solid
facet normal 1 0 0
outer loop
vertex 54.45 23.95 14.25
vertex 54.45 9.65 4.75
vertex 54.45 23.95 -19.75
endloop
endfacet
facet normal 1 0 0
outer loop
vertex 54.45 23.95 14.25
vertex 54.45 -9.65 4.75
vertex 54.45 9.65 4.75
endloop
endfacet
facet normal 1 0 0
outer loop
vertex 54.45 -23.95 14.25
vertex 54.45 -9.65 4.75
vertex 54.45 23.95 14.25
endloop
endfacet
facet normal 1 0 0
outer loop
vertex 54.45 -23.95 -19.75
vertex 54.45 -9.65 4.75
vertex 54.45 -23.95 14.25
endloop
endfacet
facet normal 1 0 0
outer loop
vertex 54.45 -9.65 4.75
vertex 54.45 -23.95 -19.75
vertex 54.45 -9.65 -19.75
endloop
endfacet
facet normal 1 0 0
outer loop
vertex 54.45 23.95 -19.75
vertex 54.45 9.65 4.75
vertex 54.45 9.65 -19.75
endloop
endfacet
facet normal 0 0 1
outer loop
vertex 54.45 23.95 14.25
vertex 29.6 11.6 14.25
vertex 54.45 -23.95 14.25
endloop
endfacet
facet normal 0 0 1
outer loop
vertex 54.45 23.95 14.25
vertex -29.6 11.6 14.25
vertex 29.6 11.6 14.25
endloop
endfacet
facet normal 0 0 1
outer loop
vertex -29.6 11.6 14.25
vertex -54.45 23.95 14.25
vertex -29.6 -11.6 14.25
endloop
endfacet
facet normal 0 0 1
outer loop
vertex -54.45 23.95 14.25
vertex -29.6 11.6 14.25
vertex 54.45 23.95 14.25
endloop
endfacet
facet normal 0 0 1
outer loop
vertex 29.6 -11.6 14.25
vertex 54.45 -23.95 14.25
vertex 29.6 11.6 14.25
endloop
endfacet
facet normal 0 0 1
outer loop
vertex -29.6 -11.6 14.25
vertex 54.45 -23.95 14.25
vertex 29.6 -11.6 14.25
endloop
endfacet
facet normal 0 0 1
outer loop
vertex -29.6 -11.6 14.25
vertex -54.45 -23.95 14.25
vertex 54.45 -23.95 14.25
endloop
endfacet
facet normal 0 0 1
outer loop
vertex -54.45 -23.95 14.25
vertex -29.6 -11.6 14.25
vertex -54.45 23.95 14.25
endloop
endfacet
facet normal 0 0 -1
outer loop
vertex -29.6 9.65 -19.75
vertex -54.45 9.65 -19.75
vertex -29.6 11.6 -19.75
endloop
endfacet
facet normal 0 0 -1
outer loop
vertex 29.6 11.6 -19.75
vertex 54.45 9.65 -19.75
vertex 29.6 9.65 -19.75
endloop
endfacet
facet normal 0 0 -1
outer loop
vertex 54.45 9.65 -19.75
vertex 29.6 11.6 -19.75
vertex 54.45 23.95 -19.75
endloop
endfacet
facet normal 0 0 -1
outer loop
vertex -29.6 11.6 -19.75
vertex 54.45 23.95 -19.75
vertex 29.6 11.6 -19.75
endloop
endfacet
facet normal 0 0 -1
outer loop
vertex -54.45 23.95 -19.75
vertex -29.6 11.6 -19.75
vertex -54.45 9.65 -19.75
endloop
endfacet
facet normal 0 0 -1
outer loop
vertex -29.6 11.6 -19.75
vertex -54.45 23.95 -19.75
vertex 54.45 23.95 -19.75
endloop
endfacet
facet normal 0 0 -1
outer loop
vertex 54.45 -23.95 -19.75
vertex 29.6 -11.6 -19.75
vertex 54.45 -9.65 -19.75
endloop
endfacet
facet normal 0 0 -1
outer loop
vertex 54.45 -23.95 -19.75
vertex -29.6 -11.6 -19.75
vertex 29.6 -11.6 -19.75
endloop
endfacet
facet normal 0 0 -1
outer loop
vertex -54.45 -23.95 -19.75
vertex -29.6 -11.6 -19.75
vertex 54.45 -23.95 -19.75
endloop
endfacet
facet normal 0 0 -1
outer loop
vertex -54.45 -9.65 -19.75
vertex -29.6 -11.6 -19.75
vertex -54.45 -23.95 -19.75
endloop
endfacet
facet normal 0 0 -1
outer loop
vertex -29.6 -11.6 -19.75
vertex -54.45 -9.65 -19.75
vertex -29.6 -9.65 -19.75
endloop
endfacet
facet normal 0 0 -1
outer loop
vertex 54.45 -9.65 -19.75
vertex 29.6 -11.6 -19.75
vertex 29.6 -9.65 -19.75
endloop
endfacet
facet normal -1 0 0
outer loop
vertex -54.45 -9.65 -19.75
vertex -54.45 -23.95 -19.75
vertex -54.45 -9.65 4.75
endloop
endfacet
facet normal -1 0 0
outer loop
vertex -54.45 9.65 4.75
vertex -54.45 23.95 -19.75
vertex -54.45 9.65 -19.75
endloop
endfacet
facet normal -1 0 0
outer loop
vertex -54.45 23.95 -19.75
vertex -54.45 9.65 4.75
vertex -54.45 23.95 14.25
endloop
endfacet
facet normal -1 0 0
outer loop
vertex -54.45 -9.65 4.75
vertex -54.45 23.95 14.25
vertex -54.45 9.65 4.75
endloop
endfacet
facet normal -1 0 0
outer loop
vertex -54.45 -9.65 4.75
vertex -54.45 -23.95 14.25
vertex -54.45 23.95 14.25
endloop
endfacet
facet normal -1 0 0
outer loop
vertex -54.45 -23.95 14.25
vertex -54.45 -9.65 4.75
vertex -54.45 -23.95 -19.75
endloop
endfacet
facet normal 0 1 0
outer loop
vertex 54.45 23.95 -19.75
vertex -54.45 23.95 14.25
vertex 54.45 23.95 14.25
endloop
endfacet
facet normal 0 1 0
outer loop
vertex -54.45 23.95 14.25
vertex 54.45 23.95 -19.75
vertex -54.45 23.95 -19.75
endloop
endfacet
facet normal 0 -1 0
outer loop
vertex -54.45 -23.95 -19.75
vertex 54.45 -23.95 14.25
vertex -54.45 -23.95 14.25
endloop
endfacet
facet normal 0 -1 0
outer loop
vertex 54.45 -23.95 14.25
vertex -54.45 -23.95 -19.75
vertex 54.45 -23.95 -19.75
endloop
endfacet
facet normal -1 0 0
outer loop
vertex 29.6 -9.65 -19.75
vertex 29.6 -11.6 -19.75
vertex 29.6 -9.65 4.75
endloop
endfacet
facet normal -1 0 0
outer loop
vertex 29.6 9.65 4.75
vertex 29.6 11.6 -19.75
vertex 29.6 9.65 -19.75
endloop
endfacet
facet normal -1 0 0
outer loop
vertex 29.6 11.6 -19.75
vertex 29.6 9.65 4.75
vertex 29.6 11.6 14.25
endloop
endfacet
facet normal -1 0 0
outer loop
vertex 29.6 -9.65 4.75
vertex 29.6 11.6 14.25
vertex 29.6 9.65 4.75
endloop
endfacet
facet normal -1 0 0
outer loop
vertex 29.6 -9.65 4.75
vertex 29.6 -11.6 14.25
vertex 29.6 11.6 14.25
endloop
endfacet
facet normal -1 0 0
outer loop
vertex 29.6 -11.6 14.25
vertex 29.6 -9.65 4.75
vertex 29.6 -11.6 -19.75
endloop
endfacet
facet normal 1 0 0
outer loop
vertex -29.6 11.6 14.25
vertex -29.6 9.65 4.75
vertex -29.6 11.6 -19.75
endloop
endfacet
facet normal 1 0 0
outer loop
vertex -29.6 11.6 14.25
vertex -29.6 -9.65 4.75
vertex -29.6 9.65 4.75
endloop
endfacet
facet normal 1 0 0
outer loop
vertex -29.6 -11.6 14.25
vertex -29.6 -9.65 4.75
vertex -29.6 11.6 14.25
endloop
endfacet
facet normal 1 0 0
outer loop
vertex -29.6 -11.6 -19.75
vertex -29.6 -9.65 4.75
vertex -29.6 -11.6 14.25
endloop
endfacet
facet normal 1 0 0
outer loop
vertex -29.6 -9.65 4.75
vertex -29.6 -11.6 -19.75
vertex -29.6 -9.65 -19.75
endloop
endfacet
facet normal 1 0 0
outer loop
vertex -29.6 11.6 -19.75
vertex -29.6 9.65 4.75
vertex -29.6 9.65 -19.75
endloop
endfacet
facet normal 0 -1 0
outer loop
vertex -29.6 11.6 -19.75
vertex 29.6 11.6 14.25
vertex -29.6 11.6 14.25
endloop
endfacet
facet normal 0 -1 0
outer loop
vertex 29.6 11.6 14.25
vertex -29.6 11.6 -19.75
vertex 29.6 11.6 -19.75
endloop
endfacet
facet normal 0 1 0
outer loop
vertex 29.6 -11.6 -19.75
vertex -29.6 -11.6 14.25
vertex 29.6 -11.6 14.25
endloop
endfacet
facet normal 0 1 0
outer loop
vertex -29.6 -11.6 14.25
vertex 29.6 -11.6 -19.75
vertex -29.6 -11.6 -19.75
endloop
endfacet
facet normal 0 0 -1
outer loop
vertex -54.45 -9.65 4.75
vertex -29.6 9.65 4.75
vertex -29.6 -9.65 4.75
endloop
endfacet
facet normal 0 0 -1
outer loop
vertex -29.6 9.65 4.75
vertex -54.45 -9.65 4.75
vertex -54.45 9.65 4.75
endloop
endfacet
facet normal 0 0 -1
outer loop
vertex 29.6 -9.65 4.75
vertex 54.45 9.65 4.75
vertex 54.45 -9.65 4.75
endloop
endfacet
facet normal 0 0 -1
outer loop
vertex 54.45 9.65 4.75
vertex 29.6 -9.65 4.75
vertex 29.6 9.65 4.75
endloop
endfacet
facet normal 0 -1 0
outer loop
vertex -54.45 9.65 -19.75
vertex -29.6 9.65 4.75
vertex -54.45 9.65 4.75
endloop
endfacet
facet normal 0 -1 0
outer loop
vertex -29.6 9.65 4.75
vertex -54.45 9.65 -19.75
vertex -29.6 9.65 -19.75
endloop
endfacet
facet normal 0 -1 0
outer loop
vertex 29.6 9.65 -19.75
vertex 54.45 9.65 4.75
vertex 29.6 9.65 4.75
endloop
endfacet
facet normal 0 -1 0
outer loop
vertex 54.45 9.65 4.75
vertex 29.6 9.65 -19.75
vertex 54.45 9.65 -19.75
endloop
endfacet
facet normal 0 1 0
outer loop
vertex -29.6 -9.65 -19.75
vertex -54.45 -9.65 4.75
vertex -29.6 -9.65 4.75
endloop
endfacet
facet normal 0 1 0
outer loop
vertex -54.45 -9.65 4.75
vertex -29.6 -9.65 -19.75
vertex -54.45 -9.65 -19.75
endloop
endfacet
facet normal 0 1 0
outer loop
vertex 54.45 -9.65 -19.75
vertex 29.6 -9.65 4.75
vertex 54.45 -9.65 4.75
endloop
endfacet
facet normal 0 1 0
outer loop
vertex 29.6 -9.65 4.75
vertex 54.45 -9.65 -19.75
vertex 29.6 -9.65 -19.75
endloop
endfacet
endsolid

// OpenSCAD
// file: ../lib/roundedcube.scad
// Higher definition curves
$fs = 0.01;

module roundedcube(size = [ 1, 1, 1 ], center = false, radius = 0.5,
                   apply_to = "all") {
  // If single value, convert to [x, y, z] vector
  size = (size[0] == undef) ? [ size, size, size ] : size;

  translate_min = radius;
  translate_xmax = size[0] - radius;
  translate_ymax = size[1] - radius;
  translate_zmax = size[2] - radius;

  diameter = radius * 2;

  module build_point(type = "sphere", rotate = [ 0, 0, 0 ]) {
    if (type == "sphere") {
      sphere(r = radius);
    } else if (type == "cylinder") {
      rotate(a = rotate) cylinder(h = diameter, r = radius, center = true);
    }
  }

  obj_translate = (center == false)
                      ? [ 0, 0, 0 ]
                      : [ -(size[0] / 2), -(size[1] / 2), -(size[2] / 2) ];

  translate(v = obj_translate) {
    hull() {
      for (translate_x = [ translate_min, translate_xmax ]) {
        x_at = (translate_x == translate_min) ? "min" : "max";
        for (translate_y = [ translate_min, translate_ymax ]) {
          y_at = (translate_y == translate_min) ? "min" : "max";
          for (translate_z = [ translate_min, translate_zmax ]) {
            z_at = (translate_z == translate_min) ? "min" : "max";

            translate(v =
                          [
                            translate_x, translate_y,
                            translate_z
                          ]) if ((apply_to == "all") ||
                                 (apply_to == "xmin" && x_at == "min") ||
                                 (apply_to == "xmax" && x_at == "max") ||
                                 (apply_to == "ymin" && y_at == "min") ||
                                 (apply_to == "ymax" && y_at == "max") ||
                                 (apply_to == "zmin" && z_at == "min") ||
                                 (apply_to == "zmax" && z_at == "max")) {
              build_point("sphere");
            }
            else {
              rotate =
                  (apply_to == "xmin" || apply_to == "xmax" || apply_to == "x")
                      ? [ 0, 90, 0 ]
                      : ((apply_to == "ymin" || apply_to == "ymax" ||
                          apply_to == "y")
                             ? [ 90, 90, 0 ]
                             : [ 0, 0, 0 ]);
              build_point("cylinder", rotate);
            }
          }
        }
      }
    }
  }
}
// main file
// Guide bush formula
// https://trend-storage.online/productdocuments/dl_gb-offset-formula.pdf

include <../lib/roundedcube.scad>

$fn = $preview ? 15 : 100;
EPSILON = 0.01;

FRICTION_OFFSET = 0.3;

ROUTER_BIT_DIAMETER = 8;
ROUTER_GUIDE_BUSH_DIAMETER = 16.9;
ROUTER_TEMPLATE_GUIDE_HEIGHT =
    8 + 1;  // Extra 1mm so guide bush doesn't touch the wood

BRACKET_WIDTH = 49;
BRACKET_HEIGHT = 6;
// Set the width of your desired notch here:
BRACKET_DEPTH = 14;

// BRACKET_HEIGHT = 2;

PLANK_THICKNESS = 19;
PLANK_WIDTH = 135;
PLANK_LENGTH = 330;

PLANK_NOTCH_WIDTH = PLANK_THICKNESS + FRICTION_OFFSET;
NOTCH_DEPTH = 25;

router_bush_offset = ROUTER_GUIDE_BUSH_DIAMETER - ROUTER_BIT_DIAMETER;
guide_height = ROUTER_TEMPLATE_GUIDE_HEIGHT + 5;

BRACKET_TEMPLATE_X_PADDING = 1;
bracket_template_width =
    BRACKET_WIDTH + router_bush_offset + BRACKET_TEMPLATE_X_PADDING;
bracket_template_depth = BRACKET_DEPTH + router_bush_offset;

jig_width = bracket_template_width + 50;
jig_depth = bracket_template_depth + 25;
jig_height = ROUTER_TEMPLATE_GUIDE_HEIGHT + NOTCH_DEPTH;
jig_side_width = (jig_depth / 2) - (PLANK_NOTCH_WIDTH / 2);

module jig() {
  translate([ 0, 0, (ROUTER_TEMPLATE_GUIDE_HEIGHT / -2 - 1) / 2 ])
      difference() {
    // Main dimensions of the jig
    cube([ jig_width, jig_depth, jig_height ], true);

    // Inner cut out for the router bit + guide
    cube(
        [
          bracket_template_width + FRICTION_OFFSET,
          bracket_template_depth + FRICTION_OFFSET, NOTCH_DEPTH + guide_height +
          FRICTION_OFFSET
        ],
        true);

    // Notch for it to slot onto the plank
    translate([ 0, 0, ROUTER_TEMPLATE_GUIDE_HEIGHT / -2 - 1 ]) {
      cube([ jig_width + 5, PLANK_NOTCH_WIDTH, NOTCH_DEPTH + 1 ], true);
    }
  }
}

module plank() {
  translate([ 0, 0, -PLANK_WIDTH / 2 ]) rotate([ 90, 0, 0 ])
      color([ 0.88, 0.59, 0 ])
          cube([ PLANK_LENGTH, PLANK_WIDTH, PLANK_THICKNESS ], true);
}

// plank();

jig();
// clamp_plate();
// clamp_pin();
// center_punch_plate();
